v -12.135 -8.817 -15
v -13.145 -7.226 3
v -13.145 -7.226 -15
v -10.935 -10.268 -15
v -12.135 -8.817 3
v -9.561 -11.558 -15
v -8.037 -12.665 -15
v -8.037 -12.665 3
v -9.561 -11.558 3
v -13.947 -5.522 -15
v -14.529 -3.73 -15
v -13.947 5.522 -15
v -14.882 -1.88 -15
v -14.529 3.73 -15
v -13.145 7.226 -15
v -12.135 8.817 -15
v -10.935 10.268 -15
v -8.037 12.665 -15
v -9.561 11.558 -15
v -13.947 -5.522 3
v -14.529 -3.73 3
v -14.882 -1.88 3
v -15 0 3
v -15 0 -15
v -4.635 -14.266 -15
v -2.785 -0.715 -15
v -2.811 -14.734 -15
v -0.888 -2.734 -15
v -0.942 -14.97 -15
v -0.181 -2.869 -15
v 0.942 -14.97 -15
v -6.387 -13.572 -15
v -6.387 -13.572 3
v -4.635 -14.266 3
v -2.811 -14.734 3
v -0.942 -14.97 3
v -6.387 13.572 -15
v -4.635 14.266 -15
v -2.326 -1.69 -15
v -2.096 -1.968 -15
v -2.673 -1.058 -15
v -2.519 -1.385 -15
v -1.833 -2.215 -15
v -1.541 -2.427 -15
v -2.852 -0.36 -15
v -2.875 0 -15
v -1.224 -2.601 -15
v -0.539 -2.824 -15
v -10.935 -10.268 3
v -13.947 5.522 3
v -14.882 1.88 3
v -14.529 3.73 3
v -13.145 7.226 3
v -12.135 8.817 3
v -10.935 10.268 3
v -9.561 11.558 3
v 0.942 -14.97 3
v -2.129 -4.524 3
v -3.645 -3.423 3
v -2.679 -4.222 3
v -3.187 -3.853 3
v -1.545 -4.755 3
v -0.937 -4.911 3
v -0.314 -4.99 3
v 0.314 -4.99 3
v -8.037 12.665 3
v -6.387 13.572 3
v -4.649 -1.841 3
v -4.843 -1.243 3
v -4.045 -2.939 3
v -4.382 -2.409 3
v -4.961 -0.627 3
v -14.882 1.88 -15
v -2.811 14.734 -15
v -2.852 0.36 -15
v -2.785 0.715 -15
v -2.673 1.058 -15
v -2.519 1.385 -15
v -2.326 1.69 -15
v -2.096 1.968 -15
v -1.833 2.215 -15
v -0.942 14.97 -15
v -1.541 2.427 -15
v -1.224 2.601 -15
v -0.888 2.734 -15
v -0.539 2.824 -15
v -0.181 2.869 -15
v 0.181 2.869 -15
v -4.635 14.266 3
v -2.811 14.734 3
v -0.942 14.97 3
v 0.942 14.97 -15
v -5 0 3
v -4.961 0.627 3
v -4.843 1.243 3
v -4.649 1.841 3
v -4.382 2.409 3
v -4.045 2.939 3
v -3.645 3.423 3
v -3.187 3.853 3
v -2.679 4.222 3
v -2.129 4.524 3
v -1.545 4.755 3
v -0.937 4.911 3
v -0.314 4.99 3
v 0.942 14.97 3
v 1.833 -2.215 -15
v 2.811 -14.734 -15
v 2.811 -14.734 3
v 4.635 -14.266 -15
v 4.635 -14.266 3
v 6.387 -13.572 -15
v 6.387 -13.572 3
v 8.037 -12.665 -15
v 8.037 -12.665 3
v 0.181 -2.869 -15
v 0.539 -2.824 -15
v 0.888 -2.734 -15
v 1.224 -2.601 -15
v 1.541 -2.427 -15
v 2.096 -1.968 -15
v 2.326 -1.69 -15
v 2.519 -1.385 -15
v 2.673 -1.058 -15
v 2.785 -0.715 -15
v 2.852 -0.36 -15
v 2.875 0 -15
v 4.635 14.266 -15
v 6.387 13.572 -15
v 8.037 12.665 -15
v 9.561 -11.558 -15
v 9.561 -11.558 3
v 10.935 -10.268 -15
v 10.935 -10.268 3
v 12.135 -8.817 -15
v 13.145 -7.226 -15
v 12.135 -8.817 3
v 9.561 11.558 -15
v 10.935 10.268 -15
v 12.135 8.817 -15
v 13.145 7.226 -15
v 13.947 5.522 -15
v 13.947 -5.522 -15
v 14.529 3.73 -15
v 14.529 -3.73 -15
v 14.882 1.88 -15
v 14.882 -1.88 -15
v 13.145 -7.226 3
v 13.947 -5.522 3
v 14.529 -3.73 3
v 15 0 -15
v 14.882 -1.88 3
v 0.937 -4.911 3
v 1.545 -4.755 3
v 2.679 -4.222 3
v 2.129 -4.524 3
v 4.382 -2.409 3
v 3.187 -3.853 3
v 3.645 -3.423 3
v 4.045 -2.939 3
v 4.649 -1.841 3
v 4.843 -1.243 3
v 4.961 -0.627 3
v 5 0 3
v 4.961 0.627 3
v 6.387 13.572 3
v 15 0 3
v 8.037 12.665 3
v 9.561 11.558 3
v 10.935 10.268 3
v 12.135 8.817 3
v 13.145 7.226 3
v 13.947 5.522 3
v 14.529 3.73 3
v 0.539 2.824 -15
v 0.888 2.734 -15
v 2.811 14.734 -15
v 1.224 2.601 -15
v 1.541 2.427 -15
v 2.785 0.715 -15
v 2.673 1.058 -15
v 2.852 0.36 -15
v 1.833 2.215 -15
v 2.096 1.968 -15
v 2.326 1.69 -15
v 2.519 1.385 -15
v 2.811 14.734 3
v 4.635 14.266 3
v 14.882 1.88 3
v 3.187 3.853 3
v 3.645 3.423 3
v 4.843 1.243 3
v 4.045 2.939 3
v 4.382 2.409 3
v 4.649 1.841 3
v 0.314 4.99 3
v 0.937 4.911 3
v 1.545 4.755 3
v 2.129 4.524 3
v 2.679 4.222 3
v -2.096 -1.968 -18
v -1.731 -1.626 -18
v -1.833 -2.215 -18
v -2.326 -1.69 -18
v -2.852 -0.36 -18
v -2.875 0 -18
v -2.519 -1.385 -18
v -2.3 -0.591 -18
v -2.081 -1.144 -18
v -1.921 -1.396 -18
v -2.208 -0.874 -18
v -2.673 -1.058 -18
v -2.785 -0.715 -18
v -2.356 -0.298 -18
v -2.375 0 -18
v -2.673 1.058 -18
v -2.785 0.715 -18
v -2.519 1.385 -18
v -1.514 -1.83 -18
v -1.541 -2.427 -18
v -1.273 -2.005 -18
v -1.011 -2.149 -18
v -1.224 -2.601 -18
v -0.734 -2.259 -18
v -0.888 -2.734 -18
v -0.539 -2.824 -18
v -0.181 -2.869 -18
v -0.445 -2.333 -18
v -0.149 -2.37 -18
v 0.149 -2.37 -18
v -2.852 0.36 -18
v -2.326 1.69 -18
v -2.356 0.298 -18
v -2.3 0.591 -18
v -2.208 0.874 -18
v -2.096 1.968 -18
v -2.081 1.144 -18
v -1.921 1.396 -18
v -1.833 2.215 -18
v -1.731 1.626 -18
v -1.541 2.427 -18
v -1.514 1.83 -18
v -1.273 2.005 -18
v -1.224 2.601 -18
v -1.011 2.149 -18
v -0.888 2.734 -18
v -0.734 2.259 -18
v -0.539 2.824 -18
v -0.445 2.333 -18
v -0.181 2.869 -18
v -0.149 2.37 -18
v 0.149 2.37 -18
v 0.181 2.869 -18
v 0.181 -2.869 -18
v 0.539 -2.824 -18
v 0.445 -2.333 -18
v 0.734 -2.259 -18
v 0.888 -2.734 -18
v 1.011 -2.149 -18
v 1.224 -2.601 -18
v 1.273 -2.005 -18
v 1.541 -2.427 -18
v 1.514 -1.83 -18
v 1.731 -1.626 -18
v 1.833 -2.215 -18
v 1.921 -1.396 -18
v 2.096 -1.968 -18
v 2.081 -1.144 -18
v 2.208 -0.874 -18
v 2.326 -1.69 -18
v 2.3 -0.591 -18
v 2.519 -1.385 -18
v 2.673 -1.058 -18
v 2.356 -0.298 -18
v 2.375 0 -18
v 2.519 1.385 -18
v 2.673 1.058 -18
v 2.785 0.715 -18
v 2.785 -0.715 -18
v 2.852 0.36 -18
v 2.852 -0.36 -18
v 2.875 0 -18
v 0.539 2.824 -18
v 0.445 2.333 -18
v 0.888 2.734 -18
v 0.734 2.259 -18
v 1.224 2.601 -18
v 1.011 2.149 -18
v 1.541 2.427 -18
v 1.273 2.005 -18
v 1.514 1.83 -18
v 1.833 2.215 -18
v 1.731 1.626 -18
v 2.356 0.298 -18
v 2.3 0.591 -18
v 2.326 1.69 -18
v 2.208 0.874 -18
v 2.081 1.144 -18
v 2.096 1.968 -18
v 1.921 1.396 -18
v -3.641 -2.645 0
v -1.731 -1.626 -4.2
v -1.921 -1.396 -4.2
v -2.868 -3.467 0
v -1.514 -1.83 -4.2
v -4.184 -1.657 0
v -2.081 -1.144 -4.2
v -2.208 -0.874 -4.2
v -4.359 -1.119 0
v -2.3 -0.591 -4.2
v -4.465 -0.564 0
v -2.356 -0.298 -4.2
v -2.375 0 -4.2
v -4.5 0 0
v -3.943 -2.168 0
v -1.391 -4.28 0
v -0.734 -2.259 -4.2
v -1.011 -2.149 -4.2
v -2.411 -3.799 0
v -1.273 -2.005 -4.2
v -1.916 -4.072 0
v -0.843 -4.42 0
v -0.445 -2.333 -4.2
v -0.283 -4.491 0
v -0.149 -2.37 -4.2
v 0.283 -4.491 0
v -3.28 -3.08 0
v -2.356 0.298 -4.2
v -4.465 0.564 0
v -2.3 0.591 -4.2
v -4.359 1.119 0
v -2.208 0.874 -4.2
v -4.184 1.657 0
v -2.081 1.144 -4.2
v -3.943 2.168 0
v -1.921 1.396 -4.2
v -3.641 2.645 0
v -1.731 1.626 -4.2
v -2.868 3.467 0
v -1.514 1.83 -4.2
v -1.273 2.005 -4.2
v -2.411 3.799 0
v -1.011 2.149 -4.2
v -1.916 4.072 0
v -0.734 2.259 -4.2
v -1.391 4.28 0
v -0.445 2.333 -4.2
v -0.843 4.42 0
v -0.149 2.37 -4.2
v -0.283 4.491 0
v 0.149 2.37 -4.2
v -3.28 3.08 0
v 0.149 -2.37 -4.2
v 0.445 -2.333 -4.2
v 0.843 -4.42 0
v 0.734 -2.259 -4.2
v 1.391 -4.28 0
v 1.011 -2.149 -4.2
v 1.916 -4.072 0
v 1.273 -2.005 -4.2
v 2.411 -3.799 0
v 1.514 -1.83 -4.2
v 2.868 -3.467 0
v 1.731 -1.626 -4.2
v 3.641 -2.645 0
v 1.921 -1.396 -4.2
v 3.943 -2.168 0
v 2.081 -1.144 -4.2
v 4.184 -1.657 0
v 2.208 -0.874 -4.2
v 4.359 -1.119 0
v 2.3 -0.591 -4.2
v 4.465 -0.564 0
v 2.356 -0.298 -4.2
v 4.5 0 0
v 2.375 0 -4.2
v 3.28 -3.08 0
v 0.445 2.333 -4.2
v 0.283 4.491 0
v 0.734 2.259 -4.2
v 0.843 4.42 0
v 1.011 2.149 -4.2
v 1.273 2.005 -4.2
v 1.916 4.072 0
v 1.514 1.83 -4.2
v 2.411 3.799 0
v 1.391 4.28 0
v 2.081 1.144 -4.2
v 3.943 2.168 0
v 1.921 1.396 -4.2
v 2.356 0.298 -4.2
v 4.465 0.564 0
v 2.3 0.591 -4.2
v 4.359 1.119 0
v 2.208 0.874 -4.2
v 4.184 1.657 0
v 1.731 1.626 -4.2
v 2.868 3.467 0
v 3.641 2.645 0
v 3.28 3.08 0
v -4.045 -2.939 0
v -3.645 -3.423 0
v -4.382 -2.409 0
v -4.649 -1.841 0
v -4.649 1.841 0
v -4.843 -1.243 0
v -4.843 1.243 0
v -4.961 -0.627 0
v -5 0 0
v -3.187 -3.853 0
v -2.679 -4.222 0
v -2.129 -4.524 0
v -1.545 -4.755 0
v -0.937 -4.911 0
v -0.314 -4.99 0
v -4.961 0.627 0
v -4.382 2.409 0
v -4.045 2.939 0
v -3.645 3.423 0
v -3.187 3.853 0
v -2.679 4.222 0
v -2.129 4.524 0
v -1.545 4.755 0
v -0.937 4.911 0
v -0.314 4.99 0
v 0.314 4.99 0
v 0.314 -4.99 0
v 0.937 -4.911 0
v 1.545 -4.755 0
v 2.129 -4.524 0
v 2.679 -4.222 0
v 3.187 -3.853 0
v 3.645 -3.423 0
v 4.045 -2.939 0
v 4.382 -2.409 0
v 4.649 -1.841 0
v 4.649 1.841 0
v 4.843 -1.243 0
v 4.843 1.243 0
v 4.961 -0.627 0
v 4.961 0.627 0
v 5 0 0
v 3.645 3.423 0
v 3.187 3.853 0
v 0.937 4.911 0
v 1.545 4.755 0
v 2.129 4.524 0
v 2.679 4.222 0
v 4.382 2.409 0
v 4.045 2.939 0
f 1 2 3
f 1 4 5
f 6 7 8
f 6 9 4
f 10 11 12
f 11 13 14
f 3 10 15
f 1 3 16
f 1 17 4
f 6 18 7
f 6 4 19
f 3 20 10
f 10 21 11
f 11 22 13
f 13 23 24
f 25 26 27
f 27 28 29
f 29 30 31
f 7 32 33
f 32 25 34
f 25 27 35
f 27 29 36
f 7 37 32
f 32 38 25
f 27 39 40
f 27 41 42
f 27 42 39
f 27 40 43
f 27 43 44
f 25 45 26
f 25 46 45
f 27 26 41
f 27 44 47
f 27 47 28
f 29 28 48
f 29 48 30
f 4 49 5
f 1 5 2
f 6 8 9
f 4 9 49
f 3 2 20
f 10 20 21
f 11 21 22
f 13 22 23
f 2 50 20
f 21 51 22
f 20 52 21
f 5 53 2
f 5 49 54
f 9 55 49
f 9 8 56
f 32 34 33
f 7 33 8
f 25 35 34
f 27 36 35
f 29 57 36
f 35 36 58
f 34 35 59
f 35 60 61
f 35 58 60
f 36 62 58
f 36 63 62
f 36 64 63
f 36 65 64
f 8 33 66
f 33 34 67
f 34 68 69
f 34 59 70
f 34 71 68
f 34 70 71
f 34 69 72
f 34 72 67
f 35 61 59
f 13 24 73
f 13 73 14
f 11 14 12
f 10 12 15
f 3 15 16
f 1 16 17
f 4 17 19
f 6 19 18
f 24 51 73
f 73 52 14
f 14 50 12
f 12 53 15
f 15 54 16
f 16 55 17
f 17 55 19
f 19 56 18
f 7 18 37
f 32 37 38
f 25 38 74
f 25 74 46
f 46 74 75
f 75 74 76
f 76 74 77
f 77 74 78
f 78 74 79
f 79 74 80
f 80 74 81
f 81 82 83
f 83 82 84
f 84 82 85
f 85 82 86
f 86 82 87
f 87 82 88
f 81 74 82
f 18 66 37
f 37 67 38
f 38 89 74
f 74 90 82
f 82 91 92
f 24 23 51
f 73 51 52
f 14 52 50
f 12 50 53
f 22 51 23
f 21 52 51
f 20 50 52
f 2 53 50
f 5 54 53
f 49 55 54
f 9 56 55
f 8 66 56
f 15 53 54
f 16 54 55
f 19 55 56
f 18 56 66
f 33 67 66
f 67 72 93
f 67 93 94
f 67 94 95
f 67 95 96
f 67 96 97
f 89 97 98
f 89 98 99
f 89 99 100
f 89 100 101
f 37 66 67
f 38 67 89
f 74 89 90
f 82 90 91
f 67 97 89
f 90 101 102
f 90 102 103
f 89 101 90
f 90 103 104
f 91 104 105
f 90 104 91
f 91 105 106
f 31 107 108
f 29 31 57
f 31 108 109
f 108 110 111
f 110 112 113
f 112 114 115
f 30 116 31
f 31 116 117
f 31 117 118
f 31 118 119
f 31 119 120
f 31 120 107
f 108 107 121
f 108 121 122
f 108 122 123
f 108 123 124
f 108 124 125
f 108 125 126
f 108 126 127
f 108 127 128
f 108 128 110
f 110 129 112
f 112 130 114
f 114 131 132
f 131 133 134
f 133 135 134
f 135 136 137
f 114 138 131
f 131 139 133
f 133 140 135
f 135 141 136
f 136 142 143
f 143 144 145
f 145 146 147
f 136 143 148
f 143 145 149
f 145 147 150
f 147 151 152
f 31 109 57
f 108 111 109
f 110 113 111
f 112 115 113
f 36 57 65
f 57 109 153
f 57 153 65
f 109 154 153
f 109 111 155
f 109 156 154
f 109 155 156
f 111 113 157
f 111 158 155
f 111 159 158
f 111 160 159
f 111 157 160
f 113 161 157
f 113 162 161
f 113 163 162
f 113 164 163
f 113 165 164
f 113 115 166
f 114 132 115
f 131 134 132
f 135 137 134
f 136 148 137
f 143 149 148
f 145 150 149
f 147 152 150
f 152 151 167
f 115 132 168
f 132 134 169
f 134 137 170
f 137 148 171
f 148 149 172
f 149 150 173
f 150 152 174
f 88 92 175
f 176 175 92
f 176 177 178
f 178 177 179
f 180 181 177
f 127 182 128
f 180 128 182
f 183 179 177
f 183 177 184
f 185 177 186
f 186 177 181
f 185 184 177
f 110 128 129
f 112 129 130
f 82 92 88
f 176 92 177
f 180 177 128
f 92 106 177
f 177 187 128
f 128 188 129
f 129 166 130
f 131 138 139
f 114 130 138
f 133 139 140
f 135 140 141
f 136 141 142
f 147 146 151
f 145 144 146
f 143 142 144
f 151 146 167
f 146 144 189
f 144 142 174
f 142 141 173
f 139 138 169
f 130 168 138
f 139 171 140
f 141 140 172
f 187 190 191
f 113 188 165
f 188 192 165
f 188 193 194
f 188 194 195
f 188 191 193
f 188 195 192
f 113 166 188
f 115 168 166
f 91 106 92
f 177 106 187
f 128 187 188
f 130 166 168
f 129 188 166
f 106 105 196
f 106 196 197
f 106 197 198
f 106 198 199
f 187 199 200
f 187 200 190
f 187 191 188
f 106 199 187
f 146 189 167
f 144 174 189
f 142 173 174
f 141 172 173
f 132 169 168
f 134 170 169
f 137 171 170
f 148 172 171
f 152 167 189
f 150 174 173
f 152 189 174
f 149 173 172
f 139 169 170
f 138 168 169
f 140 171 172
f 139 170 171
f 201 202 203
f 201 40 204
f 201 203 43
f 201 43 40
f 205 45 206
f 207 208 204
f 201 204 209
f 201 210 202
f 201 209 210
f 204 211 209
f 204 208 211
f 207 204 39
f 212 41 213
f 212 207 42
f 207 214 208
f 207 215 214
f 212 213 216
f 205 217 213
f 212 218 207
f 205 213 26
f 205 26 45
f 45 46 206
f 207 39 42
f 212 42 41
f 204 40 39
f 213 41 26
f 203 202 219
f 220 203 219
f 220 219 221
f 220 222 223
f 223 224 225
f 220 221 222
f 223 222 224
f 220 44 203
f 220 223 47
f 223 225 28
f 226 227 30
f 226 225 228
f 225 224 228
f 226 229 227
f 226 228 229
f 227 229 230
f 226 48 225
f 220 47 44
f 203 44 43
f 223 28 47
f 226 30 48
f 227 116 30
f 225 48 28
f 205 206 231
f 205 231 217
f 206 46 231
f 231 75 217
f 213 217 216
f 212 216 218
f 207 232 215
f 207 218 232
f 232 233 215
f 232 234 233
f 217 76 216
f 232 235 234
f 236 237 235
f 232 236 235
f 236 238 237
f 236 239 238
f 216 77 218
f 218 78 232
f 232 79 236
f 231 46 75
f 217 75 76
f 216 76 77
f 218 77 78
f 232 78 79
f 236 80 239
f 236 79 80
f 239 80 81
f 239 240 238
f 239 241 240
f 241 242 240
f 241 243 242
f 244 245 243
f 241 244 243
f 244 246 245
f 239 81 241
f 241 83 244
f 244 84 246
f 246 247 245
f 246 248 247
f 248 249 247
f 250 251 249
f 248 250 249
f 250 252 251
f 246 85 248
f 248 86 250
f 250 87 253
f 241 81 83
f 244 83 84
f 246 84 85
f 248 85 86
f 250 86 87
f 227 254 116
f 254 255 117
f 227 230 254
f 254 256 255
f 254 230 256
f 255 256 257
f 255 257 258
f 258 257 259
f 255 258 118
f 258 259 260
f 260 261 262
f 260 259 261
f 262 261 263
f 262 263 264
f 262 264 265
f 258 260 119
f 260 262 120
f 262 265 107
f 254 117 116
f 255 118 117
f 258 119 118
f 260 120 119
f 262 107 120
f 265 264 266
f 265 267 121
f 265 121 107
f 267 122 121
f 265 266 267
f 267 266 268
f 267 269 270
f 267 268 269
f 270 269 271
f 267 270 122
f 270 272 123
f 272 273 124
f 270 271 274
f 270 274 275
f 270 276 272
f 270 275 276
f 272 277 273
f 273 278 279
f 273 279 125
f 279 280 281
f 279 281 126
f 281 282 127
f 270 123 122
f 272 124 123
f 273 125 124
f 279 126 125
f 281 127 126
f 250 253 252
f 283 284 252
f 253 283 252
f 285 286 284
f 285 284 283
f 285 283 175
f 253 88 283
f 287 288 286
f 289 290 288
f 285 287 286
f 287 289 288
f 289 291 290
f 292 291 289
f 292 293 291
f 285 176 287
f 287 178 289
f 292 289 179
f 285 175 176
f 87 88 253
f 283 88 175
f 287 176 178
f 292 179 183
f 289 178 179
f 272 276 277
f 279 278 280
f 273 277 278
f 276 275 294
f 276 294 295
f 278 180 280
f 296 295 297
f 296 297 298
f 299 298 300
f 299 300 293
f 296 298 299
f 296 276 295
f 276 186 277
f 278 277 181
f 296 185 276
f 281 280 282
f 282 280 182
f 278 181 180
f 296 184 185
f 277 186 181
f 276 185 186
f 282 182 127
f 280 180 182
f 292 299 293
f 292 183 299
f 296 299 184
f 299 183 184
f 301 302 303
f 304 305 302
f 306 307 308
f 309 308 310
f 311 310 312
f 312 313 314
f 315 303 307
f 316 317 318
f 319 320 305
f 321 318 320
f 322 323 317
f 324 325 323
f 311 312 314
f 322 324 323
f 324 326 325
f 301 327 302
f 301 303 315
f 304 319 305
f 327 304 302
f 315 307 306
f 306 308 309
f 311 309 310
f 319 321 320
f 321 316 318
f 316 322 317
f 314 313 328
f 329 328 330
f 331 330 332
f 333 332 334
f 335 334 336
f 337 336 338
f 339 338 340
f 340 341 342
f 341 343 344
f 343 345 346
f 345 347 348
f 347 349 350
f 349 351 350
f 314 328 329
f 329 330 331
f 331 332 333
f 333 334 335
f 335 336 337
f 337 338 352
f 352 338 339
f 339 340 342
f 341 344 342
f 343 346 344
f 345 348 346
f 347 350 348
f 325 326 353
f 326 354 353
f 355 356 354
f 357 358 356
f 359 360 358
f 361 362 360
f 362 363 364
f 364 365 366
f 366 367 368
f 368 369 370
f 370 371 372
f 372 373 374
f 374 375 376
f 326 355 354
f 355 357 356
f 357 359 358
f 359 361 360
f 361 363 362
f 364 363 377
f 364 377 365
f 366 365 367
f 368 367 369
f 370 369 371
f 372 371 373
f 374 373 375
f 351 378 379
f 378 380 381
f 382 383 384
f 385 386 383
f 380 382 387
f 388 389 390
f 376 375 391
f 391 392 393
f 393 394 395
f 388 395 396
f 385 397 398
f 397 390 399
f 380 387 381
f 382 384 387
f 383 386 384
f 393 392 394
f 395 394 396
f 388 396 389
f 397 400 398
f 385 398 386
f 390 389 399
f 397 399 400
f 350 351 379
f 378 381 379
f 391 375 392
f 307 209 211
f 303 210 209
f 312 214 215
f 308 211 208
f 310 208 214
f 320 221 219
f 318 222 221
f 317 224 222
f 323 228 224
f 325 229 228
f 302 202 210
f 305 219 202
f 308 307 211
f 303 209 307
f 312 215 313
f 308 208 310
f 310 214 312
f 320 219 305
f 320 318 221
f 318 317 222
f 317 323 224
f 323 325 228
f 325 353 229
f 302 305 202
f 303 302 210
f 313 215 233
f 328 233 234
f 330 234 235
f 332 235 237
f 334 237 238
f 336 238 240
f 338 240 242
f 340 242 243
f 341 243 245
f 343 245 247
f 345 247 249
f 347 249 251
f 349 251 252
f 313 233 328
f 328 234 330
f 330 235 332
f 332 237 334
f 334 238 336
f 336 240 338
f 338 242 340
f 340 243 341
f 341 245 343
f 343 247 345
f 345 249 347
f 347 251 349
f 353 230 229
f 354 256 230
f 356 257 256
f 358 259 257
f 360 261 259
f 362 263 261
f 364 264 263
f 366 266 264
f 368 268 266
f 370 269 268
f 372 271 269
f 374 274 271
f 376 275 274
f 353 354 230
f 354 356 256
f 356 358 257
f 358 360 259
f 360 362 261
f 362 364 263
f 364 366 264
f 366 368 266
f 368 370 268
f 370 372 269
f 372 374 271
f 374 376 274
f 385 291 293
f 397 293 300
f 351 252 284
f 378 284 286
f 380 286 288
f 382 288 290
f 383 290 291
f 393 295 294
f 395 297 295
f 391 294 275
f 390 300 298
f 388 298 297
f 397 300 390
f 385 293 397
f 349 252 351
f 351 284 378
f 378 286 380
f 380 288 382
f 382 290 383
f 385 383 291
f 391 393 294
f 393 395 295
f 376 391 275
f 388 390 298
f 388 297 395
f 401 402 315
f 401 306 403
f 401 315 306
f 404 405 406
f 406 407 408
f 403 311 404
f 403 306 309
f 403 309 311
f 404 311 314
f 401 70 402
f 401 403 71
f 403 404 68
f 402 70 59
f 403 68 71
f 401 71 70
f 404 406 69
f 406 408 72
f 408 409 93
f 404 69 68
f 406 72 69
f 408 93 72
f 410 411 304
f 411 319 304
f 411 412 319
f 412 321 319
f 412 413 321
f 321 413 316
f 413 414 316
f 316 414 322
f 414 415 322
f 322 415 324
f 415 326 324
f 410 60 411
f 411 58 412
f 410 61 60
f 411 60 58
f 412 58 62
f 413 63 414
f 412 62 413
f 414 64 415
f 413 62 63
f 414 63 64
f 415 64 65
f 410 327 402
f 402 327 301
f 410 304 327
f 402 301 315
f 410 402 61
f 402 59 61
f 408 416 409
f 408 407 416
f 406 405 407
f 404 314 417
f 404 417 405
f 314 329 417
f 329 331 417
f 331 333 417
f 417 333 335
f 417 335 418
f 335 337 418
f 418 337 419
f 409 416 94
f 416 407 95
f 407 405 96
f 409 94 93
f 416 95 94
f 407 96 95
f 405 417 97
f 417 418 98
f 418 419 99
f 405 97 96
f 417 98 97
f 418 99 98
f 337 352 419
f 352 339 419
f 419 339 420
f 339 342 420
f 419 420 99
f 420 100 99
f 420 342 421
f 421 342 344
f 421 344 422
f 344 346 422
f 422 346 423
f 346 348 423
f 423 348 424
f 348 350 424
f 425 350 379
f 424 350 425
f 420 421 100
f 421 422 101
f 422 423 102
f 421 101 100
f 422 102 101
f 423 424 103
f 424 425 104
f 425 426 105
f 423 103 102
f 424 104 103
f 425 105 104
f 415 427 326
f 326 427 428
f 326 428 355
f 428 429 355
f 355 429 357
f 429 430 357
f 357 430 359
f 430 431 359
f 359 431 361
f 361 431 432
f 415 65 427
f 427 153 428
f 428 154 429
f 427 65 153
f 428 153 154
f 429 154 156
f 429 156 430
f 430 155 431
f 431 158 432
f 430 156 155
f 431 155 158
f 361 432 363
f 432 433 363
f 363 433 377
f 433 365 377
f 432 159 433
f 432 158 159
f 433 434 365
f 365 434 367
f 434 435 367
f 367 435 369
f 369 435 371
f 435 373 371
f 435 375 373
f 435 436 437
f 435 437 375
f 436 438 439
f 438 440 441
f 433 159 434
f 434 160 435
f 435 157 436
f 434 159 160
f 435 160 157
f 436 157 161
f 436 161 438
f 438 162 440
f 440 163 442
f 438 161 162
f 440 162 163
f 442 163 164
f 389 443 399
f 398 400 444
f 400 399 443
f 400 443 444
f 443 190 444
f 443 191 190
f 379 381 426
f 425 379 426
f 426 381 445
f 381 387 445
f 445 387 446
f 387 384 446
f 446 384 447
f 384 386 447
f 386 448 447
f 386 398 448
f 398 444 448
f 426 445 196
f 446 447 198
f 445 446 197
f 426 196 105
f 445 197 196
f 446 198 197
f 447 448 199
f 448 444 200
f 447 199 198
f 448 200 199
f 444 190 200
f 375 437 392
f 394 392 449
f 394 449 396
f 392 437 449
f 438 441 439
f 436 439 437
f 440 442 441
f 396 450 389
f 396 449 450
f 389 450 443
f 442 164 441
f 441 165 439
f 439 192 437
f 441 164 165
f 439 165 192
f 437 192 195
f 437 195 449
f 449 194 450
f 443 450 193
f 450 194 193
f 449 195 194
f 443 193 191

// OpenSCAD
$fn = 50;

difference() {
	union() {
		translate(v = [0, 0, -15.0]) {
			cylinder(h = 18, r = 15.0);
		}
		#translate(v = [0, 0, -18.0]) {
			cylinder(h = 18, r = 2.875);
		}
	}
	union() {
		translate(v = [0, 0, 0]) {
			rotate(a = [0, 0, 0]) {
				difference() {
					union() {
						translate(v = [0, 0, -18.0]) {
							cylinder(h = 18, r = 2.25);
						}
						translate(v = [0, 0, -4.2]) {
							cylinder(h = 4.2, r1 = 2.375, r2 = 4.5);
						}
						translate(v = [0, 0, -18.0]) {
							cylinder(h = 18, r = 2.375);
						}
						translate(v = [0, 0, -18.0]) {
							cylinder(h = 18, r = 2.25);
						}
					}
					union();
				}
			}
		}
		#cylinder(h = 3, r = 5.0);
	}
}
